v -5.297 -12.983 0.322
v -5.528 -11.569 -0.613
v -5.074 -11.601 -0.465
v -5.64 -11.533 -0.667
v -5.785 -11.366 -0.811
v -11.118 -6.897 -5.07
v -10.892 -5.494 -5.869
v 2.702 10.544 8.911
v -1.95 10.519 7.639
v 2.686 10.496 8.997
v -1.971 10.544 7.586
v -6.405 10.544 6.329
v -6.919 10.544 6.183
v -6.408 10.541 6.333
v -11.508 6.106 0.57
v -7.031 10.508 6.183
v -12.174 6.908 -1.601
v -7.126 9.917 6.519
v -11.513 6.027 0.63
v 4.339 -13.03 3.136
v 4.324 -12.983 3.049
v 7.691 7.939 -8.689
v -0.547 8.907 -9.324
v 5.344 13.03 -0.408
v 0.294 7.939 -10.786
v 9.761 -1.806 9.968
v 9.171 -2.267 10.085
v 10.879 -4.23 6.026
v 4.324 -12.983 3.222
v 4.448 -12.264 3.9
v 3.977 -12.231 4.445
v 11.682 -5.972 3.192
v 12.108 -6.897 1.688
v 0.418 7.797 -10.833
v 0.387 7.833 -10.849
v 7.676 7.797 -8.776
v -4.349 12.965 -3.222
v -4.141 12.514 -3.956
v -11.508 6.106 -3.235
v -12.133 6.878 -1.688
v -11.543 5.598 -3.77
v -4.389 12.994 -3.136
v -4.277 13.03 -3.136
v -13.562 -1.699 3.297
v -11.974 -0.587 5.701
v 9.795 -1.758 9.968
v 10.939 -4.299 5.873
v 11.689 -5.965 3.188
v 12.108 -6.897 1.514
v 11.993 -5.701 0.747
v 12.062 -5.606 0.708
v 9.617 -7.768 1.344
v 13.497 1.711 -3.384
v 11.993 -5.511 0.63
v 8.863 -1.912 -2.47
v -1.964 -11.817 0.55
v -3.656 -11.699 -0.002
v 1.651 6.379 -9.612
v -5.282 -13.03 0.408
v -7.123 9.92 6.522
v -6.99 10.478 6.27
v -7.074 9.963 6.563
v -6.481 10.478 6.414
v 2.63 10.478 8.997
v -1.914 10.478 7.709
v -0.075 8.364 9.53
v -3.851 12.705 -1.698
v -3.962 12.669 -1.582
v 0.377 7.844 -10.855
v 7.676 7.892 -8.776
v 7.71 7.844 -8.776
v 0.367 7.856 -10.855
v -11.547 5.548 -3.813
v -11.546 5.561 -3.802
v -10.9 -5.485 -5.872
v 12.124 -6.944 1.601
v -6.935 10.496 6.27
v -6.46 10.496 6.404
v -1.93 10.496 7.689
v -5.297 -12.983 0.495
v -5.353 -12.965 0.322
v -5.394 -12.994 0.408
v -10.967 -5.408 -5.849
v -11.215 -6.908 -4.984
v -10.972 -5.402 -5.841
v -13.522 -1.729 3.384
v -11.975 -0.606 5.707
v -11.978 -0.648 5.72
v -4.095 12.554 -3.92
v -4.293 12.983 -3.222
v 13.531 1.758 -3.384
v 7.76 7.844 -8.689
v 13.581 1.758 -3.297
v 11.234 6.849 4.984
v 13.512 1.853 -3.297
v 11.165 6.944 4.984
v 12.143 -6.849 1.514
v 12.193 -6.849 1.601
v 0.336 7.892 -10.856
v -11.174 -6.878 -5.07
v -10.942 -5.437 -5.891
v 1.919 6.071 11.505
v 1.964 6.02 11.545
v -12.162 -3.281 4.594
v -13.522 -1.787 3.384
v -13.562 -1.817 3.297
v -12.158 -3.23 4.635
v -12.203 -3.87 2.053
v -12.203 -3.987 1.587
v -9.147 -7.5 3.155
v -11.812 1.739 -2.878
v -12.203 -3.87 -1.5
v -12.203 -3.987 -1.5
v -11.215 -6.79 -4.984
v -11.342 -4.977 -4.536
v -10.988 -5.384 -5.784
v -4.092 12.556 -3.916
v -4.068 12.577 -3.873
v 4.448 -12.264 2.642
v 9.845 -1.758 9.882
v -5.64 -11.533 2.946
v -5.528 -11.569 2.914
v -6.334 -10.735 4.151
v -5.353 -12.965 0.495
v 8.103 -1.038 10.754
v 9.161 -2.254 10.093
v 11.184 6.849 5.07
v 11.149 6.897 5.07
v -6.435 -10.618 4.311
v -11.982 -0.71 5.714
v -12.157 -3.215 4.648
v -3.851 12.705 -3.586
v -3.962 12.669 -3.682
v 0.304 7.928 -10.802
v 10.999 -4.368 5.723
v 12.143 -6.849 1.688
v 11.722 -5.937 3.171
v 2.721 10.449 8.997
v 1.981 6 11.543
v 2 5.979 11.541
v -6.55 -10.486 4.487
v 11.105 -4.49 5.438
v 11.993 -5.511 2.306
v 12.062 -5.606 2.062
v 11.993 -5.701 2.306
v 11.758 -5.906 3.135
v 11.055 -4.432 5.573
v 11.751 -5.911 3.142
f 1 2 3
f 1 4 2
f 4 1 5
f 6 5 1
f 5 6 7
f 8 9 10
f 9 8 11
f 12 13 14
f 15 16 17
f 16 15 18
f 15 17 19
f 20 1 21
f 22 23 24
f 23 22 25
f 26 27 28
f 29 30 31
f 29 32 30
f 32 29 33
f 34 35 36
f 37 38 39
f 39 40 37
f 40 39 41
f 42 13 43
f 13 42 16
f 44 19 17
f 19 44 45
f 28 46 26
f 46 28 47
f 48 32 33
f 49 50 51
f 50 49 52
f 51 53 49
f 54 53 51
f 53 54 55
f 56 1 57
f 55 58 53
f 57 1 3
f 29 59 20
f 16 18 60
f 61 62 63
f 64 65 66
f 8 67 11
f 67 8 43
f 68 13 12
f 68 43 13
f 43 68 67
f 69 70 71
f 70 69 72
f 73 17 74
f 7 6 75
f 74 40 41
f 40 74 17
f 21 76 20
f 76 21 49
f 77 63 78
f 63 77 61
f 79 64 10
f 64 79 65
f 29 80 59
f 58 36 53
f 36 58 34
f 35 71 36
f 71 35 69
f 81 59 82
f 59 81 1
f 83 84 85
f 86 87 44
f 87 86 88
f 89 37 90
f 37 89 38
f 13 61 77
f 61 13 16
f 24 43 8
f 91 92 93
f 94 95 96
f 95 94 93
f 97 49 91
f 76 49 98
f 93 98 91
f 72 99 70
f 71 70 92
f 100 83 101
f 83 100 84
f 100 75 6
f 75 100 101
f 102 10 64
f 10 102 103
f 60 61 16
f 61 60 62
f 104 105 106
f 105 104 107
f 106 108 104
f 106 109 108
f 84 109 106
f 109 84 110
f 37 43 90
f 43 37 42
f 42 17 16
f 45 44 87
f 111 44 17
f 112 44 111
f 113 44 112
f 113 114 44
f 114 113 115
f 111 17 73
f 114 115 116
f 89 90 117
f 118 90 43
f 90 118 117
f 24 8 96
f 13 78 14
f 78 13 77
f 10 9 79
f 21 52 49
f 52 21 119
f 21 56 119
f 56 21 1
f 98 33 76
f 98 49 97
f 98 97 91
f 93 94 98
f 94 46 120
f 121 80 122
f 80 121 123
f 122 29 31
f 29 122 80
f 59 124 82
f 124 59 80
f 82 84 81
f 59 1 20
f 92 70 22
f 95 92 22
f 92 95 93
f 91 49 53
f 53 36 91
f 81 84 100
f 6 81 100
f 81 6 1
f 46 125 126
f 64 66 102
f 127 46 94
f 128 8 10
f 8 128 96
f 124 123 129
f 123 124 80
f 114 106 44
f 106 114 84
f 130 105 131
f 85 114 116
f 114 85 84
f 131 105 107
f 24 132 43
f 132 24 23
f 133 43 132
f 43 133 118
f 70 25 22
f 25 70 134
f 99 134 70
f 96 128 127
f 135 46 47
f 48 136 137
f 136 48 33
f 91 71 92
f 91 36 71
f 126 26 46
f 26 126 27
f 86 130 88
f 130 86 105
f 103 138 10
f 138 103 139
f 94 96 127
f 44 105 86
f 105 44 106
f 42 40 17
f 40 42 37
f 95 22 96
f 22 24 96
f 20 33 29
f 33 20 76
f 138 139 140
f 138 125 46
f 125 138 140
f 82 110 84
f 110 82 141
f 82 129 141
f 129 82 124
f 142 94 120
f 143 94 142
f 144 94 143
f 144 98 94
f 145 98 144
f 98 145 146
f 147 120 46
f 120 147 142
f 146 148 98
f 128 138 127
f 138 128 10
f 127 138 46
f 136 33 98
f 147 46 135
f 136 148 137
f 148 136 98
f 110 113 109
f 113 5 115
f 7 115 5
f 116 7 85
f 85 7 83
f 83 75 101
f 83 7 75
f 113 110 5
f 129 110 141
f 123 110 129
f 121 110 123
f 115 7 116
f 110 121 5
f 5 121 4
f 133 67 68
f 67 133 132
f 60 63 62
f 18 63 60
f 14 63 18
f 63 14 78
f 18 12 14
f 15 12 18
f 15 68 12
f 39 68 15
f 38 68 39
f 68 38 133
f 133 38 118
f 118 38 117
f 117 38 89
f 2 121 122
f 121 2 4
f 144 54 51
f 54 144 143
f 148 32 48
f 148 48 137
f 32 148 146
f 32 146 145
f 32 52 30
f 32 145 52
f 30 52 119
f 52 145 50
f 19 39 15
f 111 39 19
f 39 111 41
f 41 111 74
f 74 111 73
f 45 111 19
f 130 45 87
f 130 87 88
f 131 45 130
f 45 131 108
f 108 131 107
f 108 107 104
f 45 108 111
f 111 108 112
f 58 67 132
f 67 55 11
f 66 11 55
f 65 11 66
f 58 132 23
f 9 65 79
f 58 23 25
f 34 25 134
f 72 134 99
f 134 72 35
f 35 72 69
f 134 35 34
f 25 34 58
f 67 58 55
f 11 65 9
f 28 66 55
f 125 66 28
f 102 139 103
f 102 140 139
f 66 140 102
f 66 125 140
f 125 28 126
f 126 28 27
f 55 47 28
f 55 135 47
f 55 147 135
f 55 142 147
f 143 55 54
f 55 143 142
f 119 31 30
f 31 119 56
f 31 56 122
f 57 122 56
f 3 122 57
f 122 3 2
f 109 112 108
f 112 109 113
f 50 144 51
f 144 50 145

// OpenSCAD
// Auto-generated OpenSCAD file

    inner_points = 10*[[-0.022364928152955727, -0.6833428365326427, -1.2071067811865261], [0.7321659228464581, -0.027078259635412338, -1.2071067811864415], [-0.6786295050501859, 0.07118801446677113, -1.2071067811866534], [0.07590134594922775, 0.7274525913640015, -1.2071067811865688], [-0.022364928153311443, -0.6833428365325447, 1.2071067811865688], [0.7321659228461023, -0.027078259635314305, 1.2071067811866534], [-0.6786295050505418, 0.07118801446686916, 1.2071067811864415], [0.07590134594887203, 0.7274525913640996, 1.2071067811865261], [0.4416842044234921, -1.2168767178887558, -0.4999999999998886], [1.1962150554229058, -0.5606121409915255, -0.49999999999980405], [-1.142678637626842, 0.6047218958229418, -0.500000000000196], [-0.38814778662742855, 1.2609864727201718, -0.5000000000001115], [0.4416842044233449, -1.2168767178887152, 0.5000000000001115], [1.1962150554227584, -0.5606121409914849, 0.500000000000196], [-1.1426786376269895, 0.6047218958229823, 0.49999999999980405], [-0.38814778662757576, 1.2609864727202125, 0.4999999999998886], [-0.5558988095092017, -1.147391969109166, -0.5000000000000384], [-1.212163386406432, -0.3928611181097522, -0.5000000000001656], [-0.5558988095093491, -1.1473919691091254, 0.49999999999996164], [-1.2121633864065793, -0.39286111810971164, 0.4999999999998343]];

    outer_points = 10*[[1.1133863022512445, 0.6849025719557661, 0.4983835772517235], [1.3481473042168641, 0.17580803999924655, -0.3296925240143803], [0.9745294777189386, -0.17580803999924655, 0.9881753950159978], [1.2092904796845583, -0.6849025719557661, 0.160099293749894], [-1.2092904796845583, 0.6849025719557661, -0.160099293749894], [-0.9745294777189386, 0.17580803999924655, -0.9881753950159978], [-1.3481473042168641, -0.17580803999924655, 0.3296925240143803], [-1.1133863022512445, -0.6849025719557661, -0.4983835772517235], [0.5312766255676197, 1.2935168823083785, -0.04081670608026772], [0.7660376275332393, 0.784422350351859, -0.8688928073463715], [0.19604659655366607, -0.784422350351859, 1.1416453431056148], [0.43080759851928574, -1.2935168823083785, 0.3135692418395109], [-0.43080759851928574, 1.2935168823083785, -0.3135692418395109], [-0.19604659655366607, 0.784422350351859, -1.1416453431056148], [-0.7660376275332393, -0.784422350351859, 0.8688928073463715], [-0.5312766255676197, -1.2935168823083785, 0.04081670608026772], [0.2670889268787577, 1.0448867677672125, 0.8910566361743166], [0.12823210234645194, 0.18417615581219987, 1.3808484539385908], [-0.6949952972081477, 1.0448867677672125, 0.6183041004150733], [-0.8338521217404535, 0.18417615581219987, 1.1080959181793475]];

    // Convex hull for inner set (I)
    module inner_hull() {
        hull() {
            for (p = inner_points) {
                translate(p) sphere(r=0.1);
            }
        }
    }

    // Convex hull for outer set (O) minus inner hull (O \ I)
    module outer_minus_inner() {
        difference() {
            hull() {
                for (p = outer_points) {
                    translate(p) sphere(r=0.1);
                }
            }
            inner_hull(); // Subtract inner hull
        }
    }

    // Convex hull for outer set (O) minus all translated inner hulls
    module outer_minus_AllTranslationInner() {
        difference() {
            hull() {
                for (p = outer_points) {
                    translate(p) sphere(r=0.1);
                }
            }
            hull() {
                translate([0,0,50]) inner_hull();
                translate([0,0,-50]) inner_hull();
            }; // Subtract translated inner hulls
        }
    }

    // Difference between outer_minus_inner and outer_minus_AllTranslationInner
    module outer_minus_inner_diff() {
        difference() {
            // Outer minus inner
            difference() {
                hull() {
                    for (p = outer_points) {
                        translate(p) sphere(r=0.1);
                    }
                }
                inner_hull();
            }

            // Subtract Outer minus AllTranslationInner
            difference() {
                hull() {
                    for (p = outer_points) {
                        translate(p) sphere(r=0.1);
                    }
                }
                hull() {
                    translate([0,0,50]) inner_hull();
                    translate([0,0,-50]) inner_hull();
                };
            }
        }
    }

    // Rendering all with colors applied
    color([0, 1, 0, 1]) outer_minus_AllTranslationInner(); // Opaque green
    
